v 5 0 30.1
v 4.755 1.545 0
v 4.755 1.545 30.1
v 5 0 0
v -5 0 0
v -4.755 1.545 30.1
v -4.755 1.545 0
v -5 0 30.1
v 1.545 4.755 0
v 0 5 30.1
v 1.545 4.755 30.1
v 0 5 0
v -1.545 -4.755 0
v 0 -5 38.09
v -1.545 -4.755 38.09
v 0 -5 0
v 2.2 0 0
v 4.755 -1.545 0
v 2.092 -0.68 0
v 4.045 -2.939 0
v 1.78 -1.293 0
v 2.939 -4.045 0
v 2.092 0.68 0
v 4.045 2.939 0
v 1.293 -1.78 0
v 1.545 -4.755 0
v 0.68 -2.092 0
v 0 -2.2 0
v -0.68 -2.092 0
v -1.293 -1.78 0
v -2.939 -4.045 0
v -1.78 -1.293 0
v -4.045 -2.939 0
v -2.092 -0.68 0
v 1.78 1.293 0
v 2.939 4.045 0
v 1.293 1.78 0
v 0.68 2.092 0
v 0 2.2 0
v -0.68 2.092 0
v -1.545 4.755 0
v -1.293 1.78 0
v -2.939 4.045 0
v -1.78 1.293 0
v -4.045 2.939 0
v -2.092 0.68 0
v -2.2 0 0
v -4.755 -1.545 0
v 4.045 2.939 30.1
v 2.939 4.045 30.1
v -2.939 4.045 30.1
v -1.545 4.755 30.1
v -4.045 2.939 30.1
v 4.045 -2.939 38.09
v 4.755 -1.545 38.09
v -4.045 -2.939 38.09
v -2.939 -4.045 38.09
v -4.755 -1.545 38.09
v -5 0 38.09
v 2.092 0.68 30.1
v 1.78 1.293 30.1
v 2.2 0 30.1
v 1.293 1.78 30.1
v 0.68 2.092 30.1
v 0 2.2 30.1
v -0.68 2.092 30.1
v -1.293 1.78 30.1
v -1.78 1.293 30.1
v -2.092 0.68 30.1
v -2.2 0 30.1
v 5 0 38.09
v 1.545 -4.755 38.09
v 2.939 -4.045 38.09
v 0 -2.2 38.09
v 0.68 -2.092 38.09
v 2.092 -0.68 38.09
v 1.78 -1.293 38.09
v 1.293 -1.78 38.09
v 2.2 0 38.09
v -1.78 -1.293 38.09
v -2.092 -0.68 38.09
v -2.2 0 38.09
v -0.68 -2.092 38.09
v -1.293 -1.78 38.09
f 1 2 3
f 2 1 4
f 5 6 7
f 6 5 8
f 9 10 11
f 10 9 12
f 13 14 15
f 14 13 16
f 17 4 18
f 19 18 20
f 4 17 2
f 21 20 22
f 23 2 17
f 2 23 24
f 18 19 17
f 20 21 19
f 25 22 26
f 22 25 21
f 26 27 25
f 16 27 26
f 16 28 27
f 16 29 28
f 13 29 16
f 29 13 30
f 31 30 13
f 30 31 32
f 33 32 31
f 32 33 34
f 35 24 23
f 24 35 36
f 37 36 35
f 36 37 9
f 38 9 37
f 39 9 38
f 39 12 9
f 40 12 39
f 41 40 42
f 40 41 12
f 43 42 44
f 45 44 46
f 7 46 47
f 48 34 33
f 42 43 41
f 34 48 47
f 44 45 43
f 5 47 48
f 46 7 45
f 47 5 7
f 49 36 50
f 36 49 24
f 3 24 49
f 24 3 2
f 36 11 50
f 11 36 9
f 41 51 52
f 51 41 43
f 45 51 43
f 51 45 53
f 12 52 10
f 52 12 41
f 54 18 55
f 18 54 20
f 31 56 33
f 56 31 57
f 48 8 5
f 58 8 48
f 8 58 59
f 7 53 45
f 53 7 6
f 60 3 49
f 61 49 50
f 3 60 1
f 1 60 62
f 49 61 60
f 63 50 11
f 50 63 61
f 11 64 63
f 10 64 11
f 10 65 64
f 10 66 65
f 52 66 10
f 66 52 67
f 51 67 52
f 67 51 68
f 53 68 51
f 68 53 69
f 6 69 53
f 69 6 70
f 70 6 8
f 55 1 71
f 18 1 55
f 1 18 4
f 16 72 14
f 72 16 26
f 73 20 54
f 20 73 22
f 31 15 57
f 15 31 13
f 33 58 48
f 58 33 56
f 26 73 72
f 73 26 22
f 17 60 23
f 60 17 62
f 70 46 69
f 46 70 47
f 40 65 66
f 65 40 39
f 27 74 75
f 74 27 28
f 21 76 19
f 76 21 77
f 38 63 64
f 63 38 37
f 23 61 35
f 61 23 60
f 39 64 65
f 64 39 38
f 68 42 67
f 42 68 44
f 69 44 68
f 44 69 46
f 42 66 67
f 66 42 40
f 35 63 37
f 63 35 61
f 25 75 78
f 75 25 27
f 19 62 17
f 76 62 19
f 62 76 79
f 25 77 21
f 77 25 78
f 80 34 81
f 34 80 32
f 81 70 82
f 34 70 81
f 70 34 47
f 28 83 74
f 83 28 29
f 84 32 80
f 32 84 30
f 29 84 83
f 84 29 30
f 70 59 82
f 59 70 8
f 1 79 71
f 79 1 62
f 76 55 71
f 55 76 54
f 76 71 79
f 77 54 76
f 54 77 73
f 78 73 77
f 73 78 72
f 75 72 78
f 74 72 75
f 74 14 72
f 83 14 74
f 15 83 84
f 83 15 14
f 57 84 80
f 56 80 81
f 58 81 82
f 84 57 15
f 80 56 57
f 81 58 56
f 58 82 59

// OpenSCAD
// spacer.scad
//
// A small spacer to provide structure between the body frame and electronics
// holder board of a small mecanum wheel rover.
//
// By Gregg Christopher, 2015
// This file is public domain

screw_6_32_r = 4.4/2;
slop = 0.01;

total_height = 1.5 * 25.4;

module spacer() {
  difference() {
    cylinder(r = 10/2, h = total_height - 8, $fn = 20);
    translate([0, 0, -slop])
    cylinder(r = screw_6_32_r, h = total_height - 8 + 2*slop, $fn = 20);
  }
  translate([0, 0, total_height - 8 - slop])
  difference() {
    cylinder(r = 10/2, h = 8, $fn = 20);
    translate([0, 0, -slop]) {
      cylinder(r = screw_6_32_r, h = 8 + 2*slop, $fn = 20);
      translate([-5 - slop, 0, 0])
      cube([10 + 2*slop, 5 + slop, 8 + 2*slop]);
    }
  }
}

spacer();
